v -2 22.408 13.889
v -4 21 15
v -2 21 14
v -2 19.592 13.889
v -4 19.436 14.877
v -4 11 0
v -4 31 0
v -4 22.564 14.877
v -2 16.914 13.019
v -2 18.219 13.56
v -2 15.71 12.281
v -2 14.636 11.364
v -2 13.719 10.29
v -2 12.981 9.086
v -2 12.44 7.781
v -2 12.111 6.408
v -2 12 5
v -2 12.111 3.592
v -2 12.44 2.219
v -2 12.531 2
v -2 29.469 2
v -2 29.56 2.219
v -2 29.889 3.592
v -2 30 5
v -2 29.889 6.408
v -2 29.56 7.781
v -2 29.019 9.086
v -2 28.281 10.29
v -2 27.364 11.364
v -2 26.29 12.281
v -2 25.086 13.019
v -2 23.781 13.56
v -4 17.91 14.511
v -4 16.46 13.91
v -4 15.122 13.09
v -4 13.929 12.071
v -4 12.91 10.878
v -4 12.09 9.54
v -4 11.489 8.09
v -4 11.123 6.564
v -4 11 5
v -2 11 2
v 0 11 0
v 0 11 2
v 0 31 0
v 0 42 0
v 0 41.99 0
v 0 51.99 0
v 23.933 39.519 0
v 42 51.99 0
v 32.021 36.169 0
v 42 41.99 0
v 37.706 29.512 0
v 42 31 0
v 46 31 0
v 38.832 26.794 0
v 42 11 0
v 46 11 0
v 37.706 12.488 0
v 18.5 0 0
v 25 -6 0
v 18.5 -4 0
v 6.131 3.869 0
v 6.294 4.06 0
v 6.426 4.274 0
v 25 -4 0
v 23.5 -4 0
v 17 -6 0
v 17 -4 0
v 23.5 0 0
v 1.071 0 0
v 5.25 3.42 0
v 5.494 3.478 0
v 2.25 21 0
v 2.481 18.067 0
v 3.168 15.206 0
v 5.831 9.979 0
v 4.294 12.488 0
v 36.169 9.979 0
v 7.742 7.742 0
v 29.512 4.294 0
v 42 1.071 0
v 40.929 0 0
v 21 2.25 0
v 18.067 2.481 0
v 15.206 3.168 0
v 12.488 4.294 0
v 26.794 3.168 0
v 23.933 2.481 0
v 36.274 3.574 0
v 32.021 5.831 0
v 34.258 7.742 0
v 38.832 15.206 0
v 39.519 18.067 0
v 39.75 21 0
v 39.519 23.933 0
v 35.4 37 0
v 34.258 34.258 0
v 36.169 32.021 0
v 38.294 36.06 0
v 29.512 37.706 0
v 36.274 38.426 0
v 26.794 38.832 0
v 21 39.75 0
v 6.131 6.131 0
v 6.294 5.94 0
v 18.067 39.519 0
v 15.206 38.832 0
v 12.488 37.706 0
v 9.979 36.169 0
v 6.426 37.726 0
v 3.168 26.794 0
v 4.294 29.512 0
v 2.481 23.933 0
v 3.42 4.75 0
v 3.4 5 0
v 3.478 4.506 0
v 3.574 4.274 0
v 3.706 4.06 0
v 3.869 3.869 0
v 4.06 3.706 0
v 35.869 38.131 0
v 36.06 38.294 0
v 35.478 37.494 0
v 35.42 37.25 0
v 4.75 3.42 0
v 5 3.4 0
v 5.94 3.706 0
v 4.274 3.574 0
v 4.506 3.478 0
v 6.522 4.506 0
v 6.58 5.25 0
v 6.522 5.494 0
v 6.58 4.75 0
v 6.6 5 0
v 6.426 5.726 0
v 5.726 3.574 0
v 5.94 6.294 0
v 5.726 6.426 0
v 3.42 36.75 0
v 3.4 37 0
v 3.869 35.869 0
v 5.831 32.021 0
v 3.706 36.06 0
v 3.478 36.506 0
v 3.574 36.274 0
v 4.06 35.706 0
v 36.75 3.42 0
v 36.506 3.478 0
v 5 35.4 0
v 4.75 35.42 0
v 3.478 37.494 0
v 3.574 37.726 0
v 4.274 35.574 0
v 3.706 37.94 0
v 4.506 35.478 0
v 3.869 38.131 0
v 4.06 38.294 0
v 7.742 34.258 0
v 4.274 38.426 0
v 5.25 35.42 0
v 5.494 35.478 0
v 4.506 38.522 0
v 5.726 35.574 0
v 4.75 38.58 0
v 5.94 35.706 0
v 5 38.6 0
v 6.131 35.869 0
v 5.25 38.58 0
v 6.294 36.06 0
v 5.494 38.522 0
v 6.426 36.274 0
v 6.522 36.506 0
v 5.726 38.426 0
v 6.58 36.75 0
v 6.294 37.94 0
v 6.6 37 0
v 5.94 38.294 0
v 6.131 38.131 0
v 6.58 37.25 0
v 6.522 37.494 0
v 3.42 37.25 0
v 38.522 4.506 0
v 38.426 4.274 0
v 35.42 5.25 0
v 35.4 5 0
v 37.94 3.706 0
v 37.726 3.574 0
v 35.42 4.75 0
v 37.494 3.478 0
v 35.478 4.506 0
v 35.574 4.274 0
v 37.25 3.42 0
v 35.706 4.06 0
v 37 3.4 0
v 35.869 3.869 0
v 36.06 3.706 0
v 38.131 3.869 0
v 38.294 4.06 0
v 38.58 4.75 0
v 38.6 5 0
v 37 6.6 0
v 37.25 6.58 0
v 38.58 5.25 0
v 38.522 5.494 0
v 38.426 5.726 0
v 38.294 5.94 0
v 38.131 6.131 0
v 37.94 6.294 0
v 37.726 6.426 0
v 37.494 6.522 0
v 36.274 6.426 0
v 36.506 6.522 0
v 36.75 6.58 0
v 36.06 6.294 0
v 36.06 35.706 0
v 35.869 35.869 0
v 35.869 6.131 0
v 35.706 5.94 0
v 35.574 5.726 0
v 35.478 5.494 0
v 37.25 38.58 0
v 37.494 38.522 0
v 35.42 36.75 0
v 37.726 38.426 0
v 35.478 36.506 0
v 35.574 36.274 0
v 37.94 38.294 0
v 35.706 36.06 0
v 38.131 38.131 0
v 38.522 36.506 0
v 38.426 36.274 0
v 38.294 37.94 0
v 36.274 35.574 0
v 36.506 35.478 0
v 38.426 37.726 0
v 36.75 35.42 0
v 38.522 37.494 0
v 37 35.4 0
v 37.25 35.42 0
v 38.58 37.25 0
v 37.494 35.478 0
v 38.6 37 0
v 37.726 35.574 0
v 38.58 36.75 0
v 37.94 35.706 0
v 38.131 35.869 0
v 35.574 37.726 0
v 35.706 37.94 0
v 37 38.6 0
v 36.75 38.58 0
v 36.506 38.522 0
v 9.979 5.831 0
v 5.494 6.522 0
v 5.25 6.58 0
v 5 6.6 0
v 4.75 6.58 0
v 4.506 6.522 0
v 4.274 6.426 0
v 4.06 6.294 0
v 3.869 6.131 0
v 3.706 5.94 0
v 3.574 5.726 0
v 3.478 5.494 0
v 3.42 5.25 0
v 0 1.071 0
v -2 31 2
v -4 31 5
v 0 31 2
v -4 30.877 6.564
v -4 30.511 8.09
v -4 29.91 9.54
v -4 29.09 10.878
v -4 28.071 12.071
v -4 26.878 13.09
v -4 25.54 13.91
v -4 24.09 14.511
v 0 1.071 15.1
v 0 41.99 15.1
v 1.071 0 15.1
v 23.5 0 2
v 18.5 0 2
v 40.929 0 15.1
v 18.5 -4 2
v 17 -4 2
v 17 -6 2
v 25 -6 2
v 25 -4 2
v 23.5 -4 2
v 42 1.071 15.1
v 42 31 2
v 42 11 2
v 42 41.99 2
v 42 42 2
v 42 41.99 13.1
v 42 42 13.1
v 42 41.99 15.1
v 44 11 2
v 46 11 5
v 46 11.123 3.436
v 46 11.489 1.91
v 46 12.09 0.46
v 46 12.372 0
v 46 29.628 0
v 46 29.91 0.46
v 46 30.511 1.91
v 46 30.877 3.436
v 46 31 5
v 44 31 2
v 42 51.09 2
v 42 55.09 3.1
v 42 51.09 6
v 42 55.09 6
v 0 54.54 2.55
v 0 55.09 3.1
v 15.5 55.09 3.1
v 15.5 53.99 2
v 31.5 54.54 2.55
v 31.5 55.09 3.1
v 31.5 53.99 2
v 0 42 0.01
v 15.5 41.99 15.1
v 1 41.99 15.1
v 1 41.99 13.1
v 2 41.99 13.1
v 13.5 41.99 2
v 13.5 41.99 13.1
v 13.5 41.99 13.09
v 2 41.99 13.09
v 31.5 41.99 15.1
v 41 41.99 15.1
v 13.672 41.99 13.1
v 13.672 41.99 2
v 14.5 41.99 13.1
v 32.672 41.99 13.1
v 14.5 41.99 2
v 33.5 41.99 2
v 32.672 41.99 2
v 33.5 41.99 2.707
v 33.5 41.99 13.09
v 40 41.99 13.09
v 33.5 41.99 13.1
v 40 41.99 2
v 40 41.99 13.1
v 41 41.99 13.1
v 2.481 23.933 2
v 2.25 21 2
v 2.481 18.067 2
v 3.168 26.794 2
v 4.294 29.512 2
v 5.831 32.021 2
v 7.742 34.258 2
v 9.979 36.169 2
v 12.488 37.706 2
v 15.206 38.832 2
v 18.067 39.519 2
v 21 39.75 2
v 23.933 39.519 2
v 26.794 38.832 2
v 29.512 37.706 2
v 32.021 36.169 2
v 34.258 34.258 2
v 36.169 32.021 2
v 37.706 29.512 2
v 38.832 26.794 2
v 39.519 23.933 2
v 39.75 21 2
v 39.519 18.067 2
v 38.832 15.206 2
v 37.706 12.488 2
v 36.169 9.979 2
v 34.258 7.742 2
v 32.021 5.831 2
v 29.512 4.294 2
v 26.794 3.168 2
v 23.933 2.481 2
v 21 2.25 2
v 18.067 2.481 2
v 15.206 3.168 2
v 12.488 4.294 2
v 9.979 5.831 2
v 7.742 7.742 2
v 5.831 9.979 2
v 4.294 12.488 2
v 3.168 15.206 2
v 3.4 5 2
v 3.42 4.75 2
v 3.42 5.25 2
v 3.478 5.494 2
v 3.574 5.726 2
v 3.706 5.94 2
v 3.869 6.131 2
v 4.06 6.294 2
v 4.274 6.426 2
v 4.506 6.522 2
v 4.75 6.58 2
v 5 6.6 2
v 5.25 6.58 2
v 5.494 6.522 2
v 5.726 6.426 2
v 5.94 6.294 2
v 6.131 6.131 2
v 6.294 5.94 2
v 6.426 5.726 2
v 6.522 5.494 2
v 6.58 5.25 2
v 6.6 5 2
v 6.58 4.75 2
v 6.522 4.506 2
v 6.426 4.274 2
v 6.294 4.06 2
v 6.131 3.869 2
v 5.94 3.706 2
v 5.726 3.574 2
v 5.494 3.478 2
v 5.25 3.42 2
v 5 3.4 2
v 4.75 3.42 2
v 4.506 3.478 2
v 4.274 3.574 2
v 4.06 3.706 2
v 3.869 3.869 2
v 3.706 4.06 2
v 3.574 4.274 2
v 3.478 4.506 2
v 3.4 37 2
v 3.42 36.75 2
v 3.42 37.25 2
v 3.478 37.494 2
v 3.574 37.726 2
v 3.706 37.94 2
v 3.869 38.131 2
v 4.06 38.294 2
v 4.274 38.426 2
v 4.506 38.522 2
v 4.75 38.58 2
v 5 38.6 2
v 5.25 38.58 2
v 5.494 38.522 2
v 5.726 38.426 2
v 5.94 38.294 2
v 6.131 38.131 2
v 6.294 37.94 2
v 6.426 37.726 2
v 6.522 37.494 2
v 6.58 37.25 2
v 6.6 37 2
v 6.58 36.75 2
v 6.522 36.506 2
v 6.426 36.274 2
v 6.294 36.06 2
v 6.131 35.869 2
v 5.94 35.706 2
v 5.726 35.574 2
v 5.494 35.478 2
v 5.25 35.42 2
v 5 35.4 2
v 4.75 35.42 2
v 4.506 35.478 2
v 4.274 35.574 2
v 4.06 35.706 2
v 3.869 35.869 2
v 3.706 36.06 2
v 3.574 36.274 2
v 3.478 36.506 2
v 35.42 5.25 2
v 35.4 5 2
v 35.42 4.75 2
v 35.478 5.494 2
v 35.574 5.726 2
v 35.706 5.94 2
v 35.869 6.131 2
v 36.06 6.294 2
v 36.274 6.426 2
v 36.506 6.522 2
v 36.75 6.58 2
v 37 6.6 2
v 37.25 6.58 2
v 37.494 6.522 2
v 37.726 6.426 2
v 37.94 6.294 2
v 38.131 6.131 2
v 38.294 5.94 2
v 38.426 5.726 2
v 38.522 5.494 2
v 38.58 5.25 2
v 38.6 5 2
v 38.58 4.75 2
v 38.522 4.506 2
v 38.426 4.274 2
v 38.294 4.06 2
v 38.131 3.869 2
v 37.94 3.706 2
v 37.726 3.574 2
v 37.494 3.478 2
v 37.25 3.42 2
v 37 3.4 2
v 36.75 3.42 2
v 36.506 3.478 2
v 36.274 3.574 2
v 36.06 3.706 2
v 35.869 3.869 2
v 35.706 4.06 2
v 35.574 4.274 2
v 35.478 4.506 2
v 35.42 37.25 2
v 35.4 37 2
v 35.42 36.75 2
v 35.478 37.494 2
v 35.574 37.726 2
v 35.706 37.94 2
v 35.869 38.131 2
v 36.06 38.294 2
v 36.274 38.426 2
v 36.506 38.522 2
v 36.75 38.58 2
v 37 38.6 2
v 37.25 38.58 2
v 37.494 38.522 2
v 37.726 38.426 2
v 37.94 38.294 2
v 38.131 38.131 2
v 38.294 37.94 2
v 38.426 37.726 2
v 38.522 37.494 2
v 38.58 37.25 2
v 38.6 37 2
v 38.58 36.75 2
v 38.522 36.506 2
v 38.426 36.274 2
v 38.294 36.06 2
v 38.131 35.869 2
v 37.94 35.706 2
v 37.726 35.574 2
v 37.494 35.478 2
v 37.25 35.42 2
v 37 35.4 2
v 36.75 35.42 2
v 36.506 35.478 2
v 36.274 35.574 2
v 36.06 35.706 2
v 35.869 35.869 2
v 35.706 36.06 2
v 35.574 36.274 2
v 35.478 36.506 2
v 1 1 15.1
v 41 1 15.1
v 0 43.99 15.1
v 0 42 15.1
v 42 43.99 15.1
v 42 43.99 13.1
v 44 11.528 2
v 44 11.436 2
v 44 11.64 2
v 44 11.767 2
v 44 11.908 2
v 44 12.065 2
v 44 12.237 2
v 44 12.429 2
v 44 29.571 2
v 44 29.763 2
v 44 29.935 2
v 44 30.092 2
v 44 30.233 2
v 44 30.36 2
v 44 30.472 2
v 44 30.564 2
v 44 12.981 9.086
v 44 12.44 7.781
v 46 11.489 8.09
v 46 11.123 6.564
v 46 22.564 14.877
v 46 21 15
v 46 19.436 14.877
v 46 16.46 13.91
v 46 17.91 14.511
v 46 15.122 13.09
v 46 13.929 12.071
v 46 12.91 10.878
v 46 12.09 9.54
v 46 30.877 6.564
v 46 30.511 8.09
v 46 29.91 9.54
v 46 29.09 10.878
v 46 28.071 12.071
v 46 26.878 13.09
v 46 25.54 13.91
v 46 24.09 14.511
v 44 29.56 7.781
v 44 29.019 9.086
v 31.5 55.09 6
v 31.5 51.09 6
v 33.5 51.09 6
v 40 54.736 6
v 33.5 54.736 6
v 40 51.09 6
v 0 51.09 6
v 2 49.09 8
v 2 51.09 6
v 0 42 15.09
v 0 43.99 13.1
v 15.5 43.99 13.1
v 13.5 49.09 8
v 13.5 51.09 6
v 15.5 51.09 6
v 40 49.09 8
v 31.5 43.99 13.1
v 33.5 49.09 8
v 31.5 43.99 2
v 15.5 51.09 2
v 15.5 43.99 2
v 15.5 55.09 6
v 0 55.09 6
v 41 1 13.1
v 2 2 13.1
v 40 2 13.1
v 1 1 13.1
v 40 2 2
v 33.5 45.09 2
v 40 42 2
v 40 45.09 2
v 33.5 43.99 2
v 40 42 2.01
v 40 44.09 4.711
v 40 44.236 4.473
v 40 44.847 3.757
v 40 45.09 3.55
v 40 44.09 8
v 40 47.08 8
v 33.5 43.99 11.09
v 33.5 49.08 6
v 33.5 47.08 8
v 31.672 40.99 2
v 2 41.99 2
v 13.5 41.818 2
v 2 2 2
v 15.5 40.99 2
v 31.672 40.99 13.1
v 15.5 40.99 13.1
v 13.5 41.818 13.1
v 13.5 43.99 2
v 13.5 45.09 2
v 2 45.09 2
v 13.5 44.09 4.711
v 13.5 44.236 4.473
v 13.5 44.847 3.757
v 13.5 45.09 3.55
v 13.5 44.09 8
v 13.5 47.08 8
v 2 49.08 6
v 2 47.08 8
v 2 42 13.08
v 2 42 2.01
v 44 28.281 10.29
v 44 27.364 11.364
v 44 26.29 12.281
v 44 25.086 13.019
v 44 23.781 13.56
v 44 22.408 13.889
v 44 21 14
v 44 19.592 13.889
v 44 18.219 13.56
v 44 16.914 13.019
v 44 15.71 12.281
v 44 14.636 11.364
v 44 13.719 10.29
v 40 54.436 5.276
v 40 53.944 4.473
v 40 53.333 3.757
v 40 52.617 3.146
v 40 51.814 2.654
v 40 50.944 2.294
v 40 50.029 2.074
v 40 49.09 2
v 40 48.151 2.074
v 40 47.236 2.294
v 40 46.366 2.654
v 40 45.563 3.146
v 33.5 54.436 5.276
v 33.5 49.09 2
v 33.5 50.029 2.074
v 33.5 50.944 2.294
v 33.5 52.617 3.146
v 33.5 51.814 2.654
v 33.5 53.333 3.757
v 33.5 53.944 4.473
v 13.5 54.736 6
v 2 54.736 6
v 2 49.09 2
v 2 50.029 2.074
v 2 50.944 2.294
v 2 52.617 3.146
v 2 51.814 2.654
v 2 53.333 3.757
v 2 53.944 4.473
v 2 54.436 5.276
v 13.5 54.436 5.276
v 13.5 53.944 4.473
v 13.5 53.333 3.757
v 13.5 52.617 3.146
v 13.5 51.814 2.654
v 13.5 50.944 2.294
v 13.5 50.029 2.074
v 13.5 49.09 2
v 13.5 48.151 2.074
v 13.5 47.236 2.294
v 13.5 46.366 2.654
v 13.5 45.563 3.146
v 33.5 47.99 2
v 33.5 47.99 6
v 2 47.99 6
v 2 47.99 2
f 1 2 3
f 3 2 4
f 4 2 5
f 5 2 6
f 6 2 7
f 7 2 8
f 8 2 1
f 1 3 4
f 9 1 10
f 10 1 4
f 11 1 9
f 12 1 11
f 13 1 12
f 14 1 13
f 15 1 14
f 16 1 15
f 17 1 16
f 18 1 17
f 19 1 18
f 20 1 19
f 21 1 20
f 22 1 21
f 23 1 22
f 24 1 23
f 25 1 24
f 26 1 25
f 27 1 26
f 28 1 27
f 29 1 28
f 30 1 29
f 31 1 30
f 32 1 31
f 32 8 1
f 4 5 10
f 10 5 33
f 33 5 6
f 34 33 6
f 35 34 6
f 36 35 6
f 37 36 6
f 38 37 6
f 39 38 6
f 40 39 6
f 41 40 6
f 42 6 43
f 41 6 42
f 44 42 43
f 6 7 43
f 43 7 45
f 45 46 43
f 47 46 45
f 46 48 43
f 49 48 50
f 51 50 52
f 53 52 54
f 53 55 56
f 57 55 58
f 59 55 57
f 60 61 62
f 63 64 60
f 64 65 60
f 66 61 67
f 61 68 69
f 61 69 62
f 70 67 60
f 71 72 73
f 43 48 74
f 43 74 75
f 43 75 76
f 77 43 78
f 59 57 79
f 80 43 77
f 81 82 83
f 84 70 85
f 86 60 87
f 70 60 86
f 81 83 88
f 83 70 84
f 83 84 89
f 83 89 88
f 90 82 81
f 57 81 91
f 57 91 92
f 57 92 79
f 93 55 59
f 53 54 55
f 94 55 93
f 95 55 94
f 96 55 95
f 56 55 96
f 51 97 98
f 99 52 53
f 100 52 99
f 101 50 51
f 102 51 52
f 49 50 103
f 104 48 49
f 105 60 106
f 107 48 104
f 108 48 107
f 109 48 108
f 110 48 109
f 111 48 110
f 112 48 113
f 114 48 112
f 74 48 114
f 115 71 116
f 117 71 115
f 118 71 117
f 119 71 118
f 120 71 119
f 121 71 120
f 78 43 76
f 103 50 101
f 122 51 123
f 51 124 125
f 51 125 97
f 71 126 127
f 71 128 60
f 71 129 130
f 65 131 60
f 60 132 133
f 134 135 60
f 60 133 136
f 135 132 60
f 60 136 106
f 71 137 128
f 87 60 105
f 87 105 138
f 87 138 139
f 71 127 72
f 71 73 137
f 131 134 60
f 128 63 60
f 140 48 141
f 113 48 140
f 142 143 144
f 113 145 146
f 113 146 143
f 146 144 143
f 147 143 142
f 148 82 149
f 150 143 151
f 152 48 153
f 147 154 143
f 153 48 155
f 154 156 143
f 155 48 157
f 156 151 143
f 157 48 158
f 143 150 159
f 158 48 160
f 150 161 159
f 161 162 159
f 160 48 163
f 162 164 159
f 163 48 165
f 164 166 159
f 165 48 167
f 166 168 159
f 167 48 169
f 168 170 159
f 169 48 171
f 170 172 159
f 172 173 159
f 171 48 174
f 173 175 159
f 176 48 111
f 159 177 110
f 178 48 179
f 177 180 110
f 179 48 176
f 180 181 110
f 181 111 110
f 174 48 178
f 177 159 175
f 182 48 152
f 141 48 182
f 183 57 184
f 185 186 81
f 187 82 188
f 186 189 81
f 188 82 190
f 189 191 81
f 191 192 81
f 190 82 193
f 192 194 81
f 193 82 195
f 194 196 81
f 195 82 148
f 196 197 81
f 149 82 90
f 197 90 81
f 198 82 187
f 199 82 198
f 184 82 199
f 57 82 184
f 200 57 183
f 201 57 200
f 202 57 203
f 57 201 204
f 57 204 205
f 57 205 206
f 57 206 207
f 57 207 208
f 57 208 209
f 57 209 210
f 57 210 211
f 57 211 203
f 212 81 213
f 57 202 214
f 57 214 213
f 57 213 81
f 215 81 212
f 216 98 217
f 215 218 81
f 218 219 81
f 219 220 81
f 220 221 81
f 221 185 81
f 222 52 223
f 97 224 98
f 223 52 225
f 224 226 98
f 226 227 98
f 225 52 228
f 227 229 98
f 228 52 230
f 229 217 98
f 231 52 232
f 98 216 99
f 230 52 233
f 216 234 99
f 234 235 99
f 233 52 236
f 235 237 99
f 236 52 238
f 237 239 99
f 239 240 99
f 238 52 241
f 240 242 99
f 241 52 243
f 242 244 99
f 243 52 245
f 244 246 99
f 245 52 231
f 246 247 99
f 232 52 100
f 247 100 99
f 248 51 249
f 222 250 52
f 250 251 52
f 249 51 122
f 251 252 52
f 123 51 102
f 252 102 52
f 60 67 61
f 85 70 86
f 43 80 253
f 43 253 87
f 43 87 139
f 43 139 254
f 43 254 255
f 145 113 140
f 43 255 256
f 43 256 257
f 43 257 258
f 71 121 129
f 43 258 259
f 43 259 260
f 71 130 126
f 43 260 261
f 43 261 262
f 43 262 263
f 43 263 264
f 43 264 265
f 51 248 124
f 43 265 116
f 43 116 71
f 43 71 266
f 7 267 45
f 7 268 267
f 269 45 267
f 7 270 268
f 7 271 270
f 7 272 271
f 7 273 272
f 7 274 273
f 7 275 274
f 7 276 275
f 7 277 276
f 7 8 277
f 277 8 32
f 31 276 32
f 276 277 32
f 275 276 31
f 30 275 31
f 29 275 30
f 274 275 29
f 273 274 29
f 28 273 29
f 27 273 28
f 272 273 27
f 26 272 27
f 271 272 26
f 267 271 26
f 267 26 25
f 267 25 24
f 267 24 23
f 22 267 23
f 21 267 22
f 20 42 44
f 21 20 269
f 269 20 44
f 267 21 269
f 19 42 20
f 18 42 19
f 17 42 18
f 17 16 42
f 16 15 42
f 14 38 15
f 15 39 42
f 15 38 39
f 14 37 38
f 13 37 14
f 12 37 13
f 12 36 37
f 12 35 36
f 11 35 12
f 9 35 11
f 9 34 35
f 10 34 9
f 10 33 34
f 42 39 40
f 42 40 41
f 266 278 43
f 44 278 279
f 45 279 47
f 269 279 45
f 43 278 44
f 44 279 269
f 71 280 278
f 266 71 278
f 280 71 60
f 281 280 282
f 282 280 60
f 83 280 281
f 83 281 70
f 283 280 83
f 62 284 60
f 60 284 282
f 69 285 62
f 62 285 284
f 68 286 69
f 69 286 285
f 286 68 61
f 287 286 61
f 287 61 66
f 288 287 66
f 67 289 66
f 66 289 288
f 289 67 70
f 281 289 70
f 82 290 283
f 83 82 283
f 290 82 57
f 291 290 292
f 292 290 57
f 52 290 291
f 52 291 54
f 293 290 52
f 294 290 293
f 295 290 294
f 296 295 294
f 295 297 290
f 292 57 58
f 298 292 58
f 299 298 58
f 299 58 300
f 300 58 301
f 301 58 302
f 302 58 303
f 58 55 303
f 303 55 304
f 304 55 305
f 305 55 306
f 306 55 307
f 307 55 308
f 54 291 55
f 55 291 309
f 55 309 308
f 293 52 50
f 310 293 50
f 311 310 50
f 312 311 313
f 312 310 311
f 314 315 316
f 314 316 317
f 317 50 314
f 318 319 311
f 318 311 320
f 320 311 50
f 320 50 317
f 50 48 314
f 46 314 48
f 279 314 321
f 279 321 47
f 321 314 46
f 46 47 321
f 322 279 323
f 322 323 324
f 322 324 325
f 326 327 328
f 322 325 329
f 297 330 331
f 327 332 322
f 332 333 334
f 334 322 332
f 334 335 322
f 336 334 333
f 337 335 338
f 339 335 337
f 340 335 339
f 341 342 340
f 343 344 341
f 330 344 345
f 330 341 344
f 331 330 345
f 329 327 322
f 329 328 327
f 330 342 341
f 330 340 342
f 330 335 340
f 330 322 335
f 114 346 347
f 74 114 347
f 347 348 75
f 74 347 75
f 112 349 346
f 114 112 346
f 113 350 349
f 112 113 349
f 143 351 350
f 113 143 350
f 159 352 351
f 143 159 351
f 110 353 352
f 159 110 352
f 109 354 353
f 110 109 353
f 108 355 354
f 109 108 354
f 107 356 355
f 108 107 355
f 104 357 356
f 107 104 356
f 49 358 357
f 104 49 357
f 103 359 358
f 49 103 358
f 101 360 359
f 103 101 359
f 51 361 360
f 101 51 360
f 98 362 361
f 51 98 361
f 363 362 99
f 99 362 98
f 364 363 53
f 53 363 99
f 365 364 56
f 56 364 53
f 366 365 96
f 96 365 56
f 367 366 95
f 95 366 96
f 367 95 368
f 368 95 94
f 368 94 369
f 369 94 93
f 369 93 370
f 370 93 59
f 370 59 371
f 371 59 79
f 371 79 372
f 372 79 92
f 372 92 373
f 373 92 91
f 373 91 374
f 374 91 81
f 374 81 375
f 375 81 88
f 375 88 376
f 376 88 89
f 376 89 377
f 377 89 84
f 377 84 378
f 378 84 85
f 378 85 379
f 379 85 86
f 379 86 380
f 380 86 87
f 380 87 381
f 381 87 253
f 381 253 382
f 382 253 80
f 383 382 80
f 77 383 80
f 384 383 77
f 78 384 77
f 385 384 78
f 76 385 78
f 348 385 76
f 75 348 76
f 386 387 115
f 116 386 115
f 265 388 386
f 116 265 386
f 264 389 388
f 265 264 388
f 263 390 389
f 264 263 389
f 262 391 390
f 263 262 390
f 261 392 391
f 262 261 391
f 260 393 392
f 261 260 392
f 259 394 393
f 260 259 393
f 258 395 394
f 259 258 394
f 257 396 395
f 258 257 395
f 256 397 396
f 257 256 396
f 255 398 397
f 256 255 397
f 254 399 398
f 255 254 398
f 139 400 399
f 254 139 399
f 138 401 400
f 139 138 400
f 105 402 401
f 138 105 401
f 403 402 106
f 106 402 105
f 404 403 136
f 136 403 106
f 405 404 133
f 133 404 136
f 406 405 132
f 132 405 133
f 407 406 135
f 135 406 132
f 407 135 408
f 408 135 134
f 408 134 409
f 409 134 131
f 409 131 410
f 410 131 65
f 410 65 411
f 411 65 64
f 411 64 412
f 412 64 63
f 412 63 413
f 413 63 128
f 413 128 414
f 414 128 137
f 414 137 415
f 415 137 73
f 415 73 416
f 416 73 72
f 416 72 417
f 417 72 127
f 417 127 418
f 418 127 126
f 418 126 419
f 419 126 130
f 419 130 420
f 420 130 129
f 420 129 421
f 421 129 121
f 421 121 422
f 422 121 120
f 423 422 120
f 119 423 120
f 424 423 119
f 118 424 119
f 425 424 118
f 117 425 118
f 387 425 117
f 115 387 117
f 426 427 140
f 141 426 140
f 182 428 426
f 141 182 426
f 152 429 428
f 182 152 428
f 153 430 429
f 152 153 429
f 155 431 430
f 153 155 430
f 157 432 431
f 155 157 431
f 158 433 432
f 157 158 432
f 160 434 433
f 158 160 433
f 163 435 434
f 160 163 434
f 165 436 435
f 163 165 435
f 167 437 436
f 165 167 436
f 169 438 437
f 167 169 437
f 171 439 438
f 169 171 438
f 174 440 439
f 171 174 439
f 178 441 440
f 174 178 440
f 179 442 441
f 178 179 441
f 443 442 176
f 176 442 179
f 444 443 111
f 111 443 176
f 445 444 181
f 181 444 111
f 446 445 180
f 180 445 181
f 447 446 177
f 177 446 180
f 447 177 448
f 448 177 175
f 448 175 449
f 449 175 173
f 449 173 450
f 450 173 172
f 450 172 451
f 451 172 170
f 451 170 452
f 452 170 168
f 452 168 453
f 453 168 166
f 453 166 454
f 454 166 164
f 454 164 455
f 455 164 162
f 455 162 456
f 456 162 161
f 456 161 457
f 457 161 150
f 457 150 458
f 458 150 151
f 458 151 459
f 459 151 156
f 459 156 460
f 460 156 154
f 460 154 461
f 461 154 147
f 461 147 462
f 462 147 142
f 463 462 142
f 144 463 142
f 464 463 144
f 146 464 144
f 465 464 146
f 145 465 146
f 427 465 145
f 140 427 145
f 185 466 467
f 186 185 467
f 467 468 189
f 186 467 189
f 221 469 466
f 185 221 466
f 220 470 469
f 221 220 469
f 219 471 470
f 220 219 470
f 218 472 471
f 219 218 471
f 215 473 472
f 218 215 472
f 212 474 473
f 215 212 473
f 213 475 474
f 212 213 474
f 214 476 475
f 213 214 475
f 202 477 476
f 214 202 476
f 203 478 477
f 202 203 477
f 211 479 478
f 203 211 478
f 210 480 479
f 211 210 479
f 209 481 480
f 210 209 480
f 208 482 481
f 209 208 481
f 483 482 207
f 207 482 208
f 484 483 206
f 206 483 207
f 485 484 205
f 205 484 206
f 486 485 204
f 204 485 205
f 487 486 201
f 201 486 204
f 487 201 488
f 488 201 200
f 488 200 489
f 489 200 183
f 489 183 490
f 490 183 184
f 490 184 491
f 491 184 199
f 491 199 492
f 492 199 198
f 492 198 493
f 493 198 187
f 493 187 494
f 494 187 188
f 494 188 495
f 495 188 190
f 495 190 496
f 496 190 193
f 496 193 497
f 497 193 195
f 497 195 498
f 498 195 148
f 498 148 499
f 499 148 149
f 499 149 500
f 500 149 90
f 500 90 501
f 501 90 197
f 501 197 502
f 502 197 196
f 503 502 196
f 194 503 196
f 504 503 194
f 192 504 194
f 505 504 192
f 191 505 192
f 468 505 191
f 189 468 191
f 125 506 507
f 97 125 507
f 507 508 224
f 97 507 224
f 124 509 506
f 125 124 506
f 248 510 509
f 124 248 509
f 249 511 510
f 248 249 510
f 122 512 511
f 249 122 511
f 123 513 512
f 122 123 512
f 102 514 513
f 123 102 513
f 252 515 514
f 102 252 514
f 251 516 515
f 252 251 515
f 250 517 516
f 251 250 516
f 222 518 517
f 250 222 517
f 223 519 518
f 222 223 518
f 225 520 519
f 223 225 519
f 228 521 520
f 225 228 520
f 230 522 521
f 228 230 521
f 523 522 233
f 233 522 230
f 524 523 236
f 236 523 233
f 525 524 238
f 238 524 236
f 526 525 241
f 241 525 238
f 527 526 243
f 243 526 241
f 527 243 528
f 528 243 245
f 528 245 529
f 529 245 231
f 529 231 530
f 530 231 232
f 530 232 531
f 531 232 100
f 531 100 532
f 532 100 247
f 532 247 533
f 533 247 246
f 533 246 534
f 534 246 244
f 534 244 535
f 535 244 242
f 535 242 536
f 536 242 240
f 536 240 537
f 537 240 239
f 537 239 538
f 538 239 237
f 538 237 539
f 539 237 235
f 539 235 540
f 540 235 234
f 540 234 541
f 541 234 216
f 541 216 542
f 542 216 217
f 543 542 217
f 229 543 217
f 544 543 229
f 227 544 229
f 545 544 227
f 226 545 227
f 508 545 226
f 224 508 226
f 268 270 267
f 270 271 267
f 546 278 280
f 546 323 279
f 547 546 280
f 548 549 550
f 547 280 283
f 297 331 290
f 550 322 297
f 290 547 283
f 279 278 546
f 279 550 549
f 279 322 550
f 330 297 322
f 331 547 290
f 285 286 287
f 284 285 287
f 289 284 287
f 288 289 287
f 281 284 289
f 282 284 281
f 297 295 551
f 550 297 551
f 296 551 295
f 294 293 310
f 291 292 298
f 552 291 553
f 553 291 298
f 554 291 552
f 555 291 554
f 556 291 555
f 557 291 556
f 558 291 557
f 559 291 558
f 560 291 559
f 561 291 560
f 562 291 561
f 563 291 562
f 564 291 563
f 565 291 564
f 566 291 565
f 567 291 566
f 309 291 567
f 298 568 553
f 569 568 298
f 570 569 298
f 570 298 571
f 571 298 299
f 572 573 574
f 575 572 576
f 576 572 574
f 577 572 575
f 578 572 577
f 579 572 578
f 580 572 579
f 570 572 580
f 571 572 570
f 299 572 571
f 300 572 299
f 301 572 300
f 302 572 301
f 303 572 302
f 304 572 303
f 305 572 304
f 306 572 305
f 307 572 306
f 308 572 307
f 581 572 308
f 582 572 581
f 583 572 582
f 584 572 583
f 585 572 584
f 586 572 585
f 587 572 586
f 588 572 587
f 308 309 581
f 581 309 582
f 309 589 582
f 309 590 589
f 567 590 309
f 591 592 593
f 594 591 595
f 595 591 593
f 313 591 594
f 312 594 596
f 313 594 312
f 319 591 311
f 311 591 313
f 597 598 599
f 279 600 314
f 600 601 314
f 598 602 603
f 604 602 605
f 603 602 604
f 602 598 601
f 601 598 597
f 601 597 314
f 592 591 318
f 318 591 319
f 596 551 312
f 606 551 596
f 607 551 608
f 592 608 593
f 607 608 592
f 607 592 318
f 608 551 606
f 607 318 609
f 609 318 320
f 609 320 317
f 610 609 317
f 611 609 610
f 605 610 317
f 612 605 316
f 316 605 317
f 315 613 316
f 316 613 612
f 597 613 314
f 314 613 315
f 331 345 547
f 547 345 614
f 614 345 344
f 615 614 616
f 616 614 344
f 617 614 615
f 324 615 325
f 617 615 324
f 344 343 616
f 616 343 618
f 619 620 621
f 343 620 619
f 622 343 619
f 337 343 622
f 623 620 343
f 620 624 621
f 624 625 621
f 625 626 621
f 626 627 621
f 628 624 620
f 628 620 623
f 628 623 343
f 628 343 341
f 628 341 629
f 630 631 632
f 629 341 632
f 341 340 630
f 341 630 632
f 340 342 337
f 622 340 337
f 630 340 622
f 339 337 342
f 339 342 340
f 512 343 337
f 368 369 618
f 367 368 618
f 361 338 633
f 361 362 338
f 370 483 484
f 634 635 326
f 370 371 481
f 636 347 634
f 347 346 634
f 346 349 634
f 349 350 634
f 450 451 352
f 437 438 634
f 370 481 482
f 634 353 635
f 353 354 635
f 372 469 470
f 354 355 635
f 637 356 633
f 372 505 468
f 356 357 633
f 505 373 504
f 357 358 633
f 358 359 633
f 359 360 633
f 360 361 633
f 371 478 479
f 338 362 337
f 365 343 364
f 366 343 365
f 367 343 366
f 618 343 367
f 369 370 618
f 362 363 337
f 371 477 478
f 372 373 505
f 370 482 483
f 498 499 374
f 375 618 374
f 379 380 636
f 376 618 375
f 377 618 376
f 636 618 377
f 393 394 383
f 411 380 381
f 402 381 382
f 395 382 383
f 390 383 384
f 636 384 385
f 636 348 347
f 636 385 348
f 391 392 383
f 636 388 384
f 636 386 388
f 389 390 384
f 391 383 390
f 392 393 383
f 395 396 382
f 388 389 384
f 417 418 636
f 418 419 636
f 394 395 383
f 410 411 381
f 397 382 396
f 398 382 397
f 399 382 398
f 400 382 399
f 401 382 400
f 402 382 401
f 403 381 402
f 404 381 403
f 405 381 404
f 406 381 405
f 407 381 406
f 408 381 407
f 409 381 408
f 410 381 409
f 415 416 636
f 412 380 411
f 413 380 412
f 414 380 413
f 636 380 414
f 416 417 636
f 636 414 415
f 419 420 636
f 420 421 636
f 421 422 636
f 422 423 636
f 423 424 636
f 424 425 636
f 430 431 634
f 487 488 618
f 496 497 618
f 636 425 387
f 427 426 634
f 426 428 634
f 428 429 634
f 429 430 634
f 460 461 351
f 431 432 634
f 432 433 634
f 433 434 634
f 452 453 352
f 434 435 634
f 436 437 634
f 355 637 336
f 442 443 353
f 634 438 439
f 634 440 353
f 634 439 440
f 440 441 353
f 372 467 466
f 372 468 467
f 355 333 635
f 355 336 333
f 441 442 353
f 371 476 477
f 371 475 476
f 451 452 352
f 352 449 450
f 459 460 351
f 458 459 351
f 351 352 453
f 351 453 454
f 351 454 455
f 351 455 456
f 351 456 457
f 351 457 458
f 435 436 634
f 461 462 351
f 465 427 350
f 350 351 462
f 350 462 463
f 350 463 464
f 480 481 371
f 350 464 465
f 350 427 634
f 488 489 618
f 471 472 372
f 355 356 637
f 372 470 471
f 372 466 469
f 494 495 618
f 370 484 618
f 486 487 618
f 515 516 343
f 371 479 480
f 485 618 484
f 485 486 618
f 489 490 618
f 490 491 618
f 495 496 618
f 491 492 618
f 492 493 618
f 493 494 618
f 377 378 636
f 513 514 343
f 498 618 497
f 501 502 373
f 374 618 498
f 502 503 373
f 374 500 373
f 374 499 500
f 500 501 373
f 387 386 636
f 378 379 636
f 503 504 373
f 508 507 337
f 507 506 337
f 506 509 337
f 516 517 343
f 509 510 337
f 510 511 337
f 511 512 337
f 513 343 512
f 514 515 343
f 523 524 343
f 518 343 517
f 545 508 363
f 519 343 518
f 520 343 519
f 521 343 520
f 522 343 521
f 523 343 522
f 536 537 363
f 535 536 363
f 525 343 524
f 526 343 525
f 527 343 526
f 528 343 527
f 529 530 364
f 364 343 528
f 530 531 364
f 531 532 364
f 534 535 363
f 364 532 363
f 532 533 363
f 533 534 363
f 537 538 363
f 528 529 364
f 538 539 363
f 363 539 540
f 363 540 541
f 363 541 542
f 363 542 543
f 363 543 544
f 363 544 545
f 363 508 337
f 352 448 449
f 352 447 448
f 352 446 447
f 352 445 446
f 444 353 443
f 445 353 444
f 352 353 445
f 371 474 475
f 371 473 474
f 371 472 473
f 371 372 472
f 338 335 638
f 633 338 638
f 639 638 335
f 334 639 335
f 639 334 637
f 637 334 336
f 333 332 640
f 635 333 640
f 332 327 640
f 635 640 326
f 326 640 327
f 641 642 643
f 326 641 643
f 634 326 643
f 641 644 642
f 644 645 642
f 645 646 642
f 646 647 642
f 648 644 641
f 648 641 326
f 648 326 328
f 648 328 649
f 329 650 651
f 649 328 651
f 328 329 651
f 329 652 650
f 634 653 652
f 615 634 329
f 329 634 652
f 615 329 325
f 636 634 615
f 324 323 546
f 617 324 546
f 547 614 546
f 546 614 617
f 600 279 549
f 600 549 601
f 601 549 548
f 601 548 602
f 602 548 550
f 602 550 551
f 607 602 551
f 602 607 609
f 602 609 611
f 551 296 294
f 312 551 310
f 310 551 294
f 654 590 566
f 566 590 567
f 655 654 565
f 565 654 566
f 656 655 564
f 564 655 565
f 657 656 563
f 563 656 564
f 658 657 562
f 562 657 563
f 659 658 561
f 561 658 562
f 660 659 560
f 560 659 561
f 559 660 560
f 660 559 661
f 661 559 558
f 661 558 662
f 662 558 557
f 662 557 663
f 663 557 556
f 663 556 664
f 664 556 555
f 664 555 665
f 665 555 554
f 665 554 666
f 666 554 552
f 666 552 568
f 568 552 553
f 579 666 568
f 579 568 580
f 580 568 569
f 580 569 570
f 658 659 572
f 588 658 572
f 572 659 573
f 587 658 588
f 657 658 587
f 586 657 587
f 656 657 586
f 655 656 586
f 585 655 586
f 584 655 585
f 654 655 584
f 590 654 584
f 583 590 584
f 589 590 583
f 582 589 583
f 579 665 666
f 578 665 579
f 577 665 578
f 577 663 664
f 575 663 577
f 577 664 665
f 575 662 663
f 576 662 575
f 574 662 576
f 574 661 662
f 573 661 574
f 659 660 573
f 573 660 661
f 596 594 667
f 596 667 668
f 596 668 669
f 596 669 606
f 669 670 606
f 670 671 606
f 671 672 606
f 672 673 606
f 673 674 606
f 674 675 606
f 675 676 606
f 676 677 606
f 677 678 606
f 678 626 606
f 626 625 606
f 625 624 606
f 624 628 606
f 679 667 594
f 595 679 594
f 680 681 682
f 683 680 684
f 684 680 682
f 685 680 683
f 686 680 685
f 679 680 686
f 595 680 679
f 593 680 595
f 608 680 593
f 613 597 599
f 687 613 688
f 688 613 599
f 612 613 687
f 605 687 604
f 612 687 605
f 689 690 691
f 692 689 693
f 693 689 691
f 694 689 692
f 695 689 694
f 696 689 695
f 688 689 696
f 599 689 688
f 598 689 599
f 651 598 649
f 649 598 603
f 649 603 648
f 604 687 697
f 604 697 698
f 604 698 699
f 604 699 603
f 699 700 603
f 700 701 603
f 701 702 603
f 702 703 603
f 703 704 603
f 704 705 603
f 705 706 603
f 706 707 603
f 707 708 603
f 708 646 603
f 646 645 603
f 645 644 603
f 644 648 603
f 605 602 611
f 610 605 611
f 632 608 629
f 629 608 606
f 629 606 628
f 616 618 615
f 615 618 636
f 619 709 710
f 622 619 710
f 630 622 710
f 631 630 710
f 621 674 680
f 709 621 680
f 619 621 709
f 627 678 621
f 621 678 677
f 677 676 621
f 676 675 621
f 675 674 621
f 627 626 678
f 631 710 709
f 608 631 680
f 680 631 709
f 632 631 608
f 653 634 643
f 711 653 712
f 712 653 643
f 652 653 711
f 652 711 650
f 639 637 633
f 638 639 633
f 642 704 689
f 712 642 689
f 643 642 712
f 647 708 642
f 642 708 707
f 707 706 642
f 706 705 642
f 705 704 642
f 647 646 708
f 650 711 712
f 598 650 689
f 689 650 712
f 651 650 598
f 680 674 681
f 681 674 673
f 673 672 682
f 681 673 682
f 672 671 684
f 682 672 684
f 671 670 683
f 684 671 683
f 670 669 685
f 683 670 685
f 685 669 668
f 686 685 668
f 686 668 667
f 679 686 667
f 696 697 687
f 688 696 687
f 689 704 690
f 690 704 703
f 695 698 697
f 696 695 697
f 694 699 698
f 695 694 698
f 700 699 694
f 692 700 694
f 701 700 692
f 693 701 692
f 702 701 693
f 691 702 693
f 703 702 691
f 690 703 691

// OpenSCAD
$fn=40;
//hotend duct 
sc = 32; //Screw Centres
wall=2;
hole = 37.5;  //fan hole
x=42;
y=x;
z=15.10;
heo = 2.5; //hot end offset
hbr = 16; //heat block recess

ventB=(x/2)-(hbr/2)+heo;
ventS=(x/2)-(hbr/2)-heo;

module prism(l, w, h) {
	translate([0, l, 0]) rotate( a= [90, 0, 0]) 
	linear_extrude(height = l) polygon(points = [
		[0, 0],
		[w, 0],
		[0, h]
	], paths=[[0,2,1]]);
}

module vHole(len) {
	difference() {
		union() {
			cube([10-6,len,6]);
			translate([10-6,len,6]) rotate([90,0,0]) cylinder(len,6,6);
		}
		translate ([-7,-1,6]) cube([16,len+2,10]);
		translate ([-7,-1,0]) cube([6,len+2,7]);
	}
}


//Vents
translate([x,y-0.01,0]) rotate([0,0,90]) {
difference() {
	union() {
	difference() {
		union() {
			prism(ventS,z,z);
			translate([z-6,0,0]) cube([4,ventS,6]);
		}
		difference() {
			translate([-.01,wall,wall]) prism(ventS-(wall*2),z-(wall*2),z-(wall*2));
			translate([6,0,0]) cube([6,ventS,6]);
		}
		
		translate([z-12,wall,wall]) vHole(ventS-(wall*2));
	}

	translate([0,ventS+hbr,0]) { //Small Vent
		difference() { //Big Vent
			union() {
				prism(ventB,z,z);
				translate([z-6,0,0]) cube([4,ventB,6]);
			}
			difference() {
				translate([-.01,wall,wall]) prism(ventB-(wall*2),z-(wall*2),z-(wall*2));
				translate([6,0,0]) cube([6,ventB,6]);
			}
			translate([z-12,wall,wall]) vHole(ventB-(wall*2));
		}
	}
	cube([z-2,y,wall]); //Base
	translate([0,0,z-wall]) cube([wall,y,wall]); //top of slope edging strip
	difference() {
		translate([-wall/2,ventS-wall,wall]) cube([wall+1,hbr+(wall*2),z-(wall*2)]); //vent join

		translate([-1,ventS-3,wall]) rotate([0,0,45]) cube([wall,wall,z-(wall*2)]); //vent join bevel
		translate([-1,hbr+ventS,wall]) rotate([0,0,45]) cube([wall,wall,z-(wall*2)]); //vent join bevel
	}
	}
	translate([10,-1,0]) rotate([0,45,0]) cube([10,y+2,10]);
}

}

//Body
difference() {
	cube([x,y,z]); //outer block
	translate([x/2,x/2,-.1]) cylinder(20,hole/2,hole/2); //fan hole
	translate([wall,wall,2]) cube([x-(wall*2), x, 20]); //heatsink hole
	translate([wall-1,wall-1,z-2]) cube([x-(wall), x, 20]); //heatsink recess
	
	for(xp = [0:1]) { //4 x screw holes
		for(yp = [0:1]) {
			//hull() { //hull to make slots
			translate([((x-sc)/2) + (xp*sc),((x-sc)/2) + (yp*sc),-.1]) cylinder(3,1.6,1.6);
			//translate([((x-sc)/2) + (xp*sc),((x-sc)/2) + (yp*sc)+2,-.1]) cylinder(3,1.5,1.5);
			//}
		}
	}
	translate([0,-6,-1]) rotate([0,0,45]) cube([5,5,z+2]);
	translate([x,-6,-1]) rotate([0,0,45]) cube([5,5,z+2]);
}


//Cable Traps
translate([x,(y/2)-10,0]) cube([wall*2,20,2]); //right cable trap
	difference() {
	hull() {
		translate([x+wall,(y/2),5]) rotate([0,90,0]) cylinder(wall,9,10); //right cable trap
		translate([x+wall,(y/2)-10,0]) cube([wall,20,2]); //right cable trap
	}
	translate([x+wall-.1,(y/2)-10,-10]) cube([wall+.2,20,10]); //remove bottom cylinder
}

translate([-wall*2,(y/2)-10,0]) cube([wall*2,20,2]); //left cable trap
	difference() {
	hull() {
		translate([-wall*2,(y/2),5]) rotate([0,90,0]) cylinder(wall,10,9); 
		translate([-wall*2,(y/2)-10,0]) cube([wall,20,2]); 
	}
	translate([-(wall*2)-.1,(y/2)-10,-10]) cube([wall+.2,20,10]); //remove bottom cylinder
}

//Tie Wrap T
translate([x/2-2.5,-6,0]) cube([5,6,2]);
translate([x/2-4,-6,0]) cube([8,2,2]);
